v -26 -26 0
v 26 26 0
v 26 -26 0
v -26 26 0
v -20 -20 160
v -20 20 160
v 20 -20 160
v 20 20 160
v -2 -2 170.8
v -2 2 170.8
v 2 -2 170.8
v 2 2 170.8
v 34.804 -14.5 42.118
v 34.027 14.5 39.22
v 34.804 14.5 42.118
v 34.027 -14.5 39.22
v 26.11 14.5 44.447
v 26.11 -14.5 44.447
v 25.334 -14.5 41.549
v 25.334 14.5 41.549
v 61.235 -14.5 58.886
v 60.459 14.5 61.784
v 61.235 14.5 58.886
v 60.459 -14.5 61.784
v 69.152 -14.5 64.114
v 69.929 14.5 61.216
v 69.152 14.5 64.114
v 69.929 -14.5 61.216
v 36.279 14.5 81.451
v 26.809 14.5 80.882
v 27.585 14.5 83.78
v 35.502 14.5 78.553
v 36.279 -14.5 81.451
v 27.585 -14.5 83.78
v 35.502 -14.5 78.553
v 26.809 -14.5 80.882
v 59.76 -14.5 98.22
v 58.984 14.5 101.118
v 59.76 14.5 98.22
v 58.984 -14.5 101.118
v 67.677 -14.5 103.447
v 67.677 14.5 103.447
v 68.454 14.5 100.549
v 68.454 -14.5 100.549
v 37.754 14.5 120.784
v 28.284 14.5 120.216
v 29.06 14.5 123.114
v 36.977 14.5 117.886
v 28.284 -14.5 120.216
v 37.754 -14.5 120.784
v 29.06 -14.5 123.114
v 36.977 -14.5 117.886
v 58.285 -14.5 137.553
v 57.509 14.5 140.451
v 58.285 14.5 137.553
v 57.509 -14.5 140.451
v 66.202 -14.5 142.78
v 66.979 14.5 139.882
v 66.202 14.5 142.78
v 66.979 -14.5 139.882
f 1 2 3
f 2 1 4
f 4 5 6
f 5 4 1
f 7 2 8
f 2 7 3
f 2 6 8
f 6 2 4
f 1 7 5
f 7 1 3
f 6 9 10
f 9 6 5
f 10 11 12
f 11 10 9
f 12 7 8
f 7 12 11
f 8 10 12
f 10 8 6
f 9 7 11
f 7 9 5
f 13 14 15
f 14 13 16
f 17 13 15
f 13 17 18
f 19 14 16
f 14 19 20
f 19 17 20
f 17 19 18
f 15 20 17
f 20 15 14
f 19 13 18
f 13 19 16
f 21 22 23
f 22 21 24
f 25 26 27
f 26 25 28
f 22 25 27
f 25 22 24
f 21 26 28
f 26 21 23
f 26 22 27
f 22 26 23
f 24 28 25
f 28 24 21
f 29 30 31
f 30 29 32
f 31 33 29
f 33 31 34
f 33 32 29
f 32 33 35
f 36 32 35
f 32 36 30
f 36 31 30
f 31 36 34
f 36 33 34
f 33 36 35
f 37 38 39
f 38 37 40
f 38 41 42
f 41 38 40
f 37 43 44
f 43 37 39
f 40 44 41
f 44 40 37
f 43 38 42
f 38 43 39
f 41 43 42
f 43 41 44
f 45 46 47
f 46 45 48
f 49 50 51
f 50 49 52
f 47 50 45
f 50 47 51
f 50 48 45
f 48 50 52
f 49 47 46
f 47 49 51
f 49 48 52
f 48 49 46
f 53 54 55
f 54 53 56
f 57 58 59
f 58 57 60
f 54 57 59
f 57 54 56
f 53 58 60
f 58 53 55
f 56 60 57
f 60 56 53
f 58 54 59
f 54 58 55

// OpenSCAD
// file: tower.scad
// ======================================================
// Dice Tower (tapered shell) + DIAGONAL baffles (wall-to-wall)
// Baffles tilt across X (rotate about Y) and alternate each level
// ======================================================
$fn = 64;

// ---------- Tower geometry ----------
tower_h       = 160;   // body height (not counting cap)
outer_w_bot   = 52;    // outer width at base
outer_w_top   = 40;    // outer width at top
wall          = 3;     // wall thickness
cap_h         = 18;    // little pyramid cap

// Inner chute (constant rectangle, centered)
chute_w       = 32;    // X (give chunky d20s room)
chute_d       = 32;    // Y

// Exit opening (front = +Y)
base_clear_h  = 22;
exit_w        = 34;
exit_h        = 20;

// Funnel at top
funnel_h      = 20;
funnel_over   = 3;

// ---------- Baffles (DIAGONAL across X) ----------
num_baffles       = 6;
baffle_t          = 3.0;   // slightly thicker for robustness
baffle_angle_deg  = 15;     // slope across X (left high → right low, then flip)
baffle_margin     = 10;     // top/bottom margin before first/after last
y_clear_from_wall = 1.5;    // clearance from front/back walls (Y)
 x_overlap         = 1.0;    // small penetration into wall to avoid boolean slivers
baffle_max_width  = 18;     // max baffle width to prevent jamming

// ---------- helpers ----------
module taper(wb, wt, h){ linear_extrude(h, scale=wt/wb) square([wb,wb], center=true); }
function iw_bot() = outer_w_bot - 2*wall;
function iw_top() = outer_w_top - 2*wall;
function inner_w_at_z(z) = iw_bot() + (iw_top() - iw_bot()) * (z / tower_h);

// ---------- outer shell ----------
module outer_shell(){
  union(){
    taper(outer_w_bot, outer_w_top, tower_h);
    // Replace polyhedron cap with a short flat-ish cap to avoid fragile apex
    translate([0,0,tower_h])
      taper(outer_w_top, 4.0, cap_h*0.6); // small flat cap rather than a sharp point
  }
}

// ---------- subtractions ----------
module inner_cavity_taper(){ taper(iw_bot(), iw_top(), tower_h); }
module main_chute(){ linear_extrude(tower_h) square([chute_w, chute_d], center=true); }
module exit_window(){
  translate([0,0,base_clear_h + exit_h/2])
    rotate([90,0,0]) cube([exit_w, wall*2+0.2, exit_h], center=true);
}
module top_funnel(){
  fw_top = chute_w + 2*funnel_over;
  fw_bot = iw_top() - 2;
  fh     = min(funnel_h, tower_h*0.35);
  translate([0,0,tower_h - fh]) taper(fw_bot, fw_top, fh);
}

// ---------- DIAGONAL baffles (tilt across X, alternate) ----------
module baffles_diagonal(){
  usable_h = (tower_h - base_clear_h) - 2*baffle_margin;
  spacing  = usable_h / max(num_baffles,1);

  // size in Y (front/back) – centered with a small gap to both walls
  len_y = chute_d - 2*y_clear_from_wall;

  for(i=[0:num_baffles-1]){
    zc   = base_clear_h + baffle_margin + spacing*(i+0.5);
    iw_z = inner_w_at_z(zc);             // inner width between side walls at this Z

    // PROPER FIX: Baffles must attach to walls to be printable
    // Alternate between left-wall and right-wall attachment
    // Each baffle spans from one wall partway across, leaving flow gap on opposite side
    
    // Safety clamp: ensure flow gap is large enough for common D20s.
    // gap = chute_w - len_x  => enforce gap >= safe_d20 + clearance
    safe_d20   = 22.5;    // typical tip-to-tip diagonal for D20 (mm)
    clearance  = 0.5;     // extra wiggle room (mm)
  // maximum allowed baffle length so the remaining gap fits a D20
  max_len_allowed = max([0, chute_w - (safe_d20 + clearance)]);

  // clamp also by the local inner width at this Z to avoid overhanging into the tapered shell
  // leave a small margin so baffles don't butt exactly at the wall edge
  small_margin = 2.0;
  cap_by_inner = max([0, iw_z - small_margin]);

  // final baffle length: pick the desired coverage, clamp by D20, max width, and inner width;
  // ensure a tiny positive minimum so cube() never gets a zero size
  len_x = max([0.1, min([chute_w * 0.4, max_len_allowed, baffle_max_width, cap_by_inner])]);

    // Add a tiny positive overlap into the wall to avoid boolean slivers (use x_overlap if set)
    wall_penetration = max([0, x_overlap]);

    // compute x_offset so the baffle visibly attaches to the INNER wall at this Z
    inner_half = iw_z / 2;
    left_face  = -inner_half - wall_penetration; // a bit into the inner wall
    right_face =  inner_half + wall_penetration;
    x_offset = (i % 2 == 0) ?
      left_face + len_x/2 :   // Even: attach to LEFT inner wall
      right_face - len_x/2;   // Odd: attach to RIGHT inner wall

    // alternate slope across X: even -> left high/right low, odd -> reverse
    sign = (i % 2 == 0) ? 1 : -1;
    tilt = sign * baffle_angle_deg;

    // Single diagonal baffle - attached to alternating walls
    translate([x_offset, 0, zc])
      rotate([0, tilt, 0])
        cube([len_x, len_y, baffle_t], center=true);
  }
}

// ---------- assembly ----------
difference(){
  union(){
    outer_shell();
    // include internal shelves so they remain after subtraction
    baffles_diagonal();
  }
  inner_cavity_taper();
  main_chute();    // ensures a straight chute inside the tapered shell
  exit_window();
  top_funnel();
}

/* Tuning:
- Want a stronger slope?   baffle_angle_deg = 18–20
- Easier bridging?         baffle_t = 3.0
- More room for big dice?  chute_w = chute_d = 34
- Shelves touching side walls more obviously? increase x_overlap to 1.0
- If you prefer the “front/back hug” style instead, tell me and I’ll swap the
  tilt axis (rotate about X) and add the exact Y wall gap computation.
*/

// ---------- test slice helper ----------
// Renders a short vertical slice of the tower (0..slice_h mm) for test-printing
module test_slice(slice_h = 50){
  // render the final assembled tower, then clip with an intersection cube
  intersection(){
    // full model
    difference(){
      union(){ outer_shell(); baffles_diagonal(); }
      inner_cavity_taper();
      main_chute();
      exit_window();
      top_funnel();
    }
    // clipping box
    translate([-100,-100,0])
      cube([200,200,slice_h], center=false);
  }
}
// main file
// Debug scene to visualize baffles and cavity
// Includes the main design and draws baffles in place + shifted aside for inspection
include <tower.scad>

// show shell (semi-transparent)
color([0.9,0.9,0.6,0.2]) outer_shell();
// show inner cavity (semi-transparent blue)
color([0.2,0.6,0.9,0.2]) inner_cavity_taper();

// show baffles in-place (red)
color([1,0.2,0.2,0.9]) baffles_diagonal();

// show baffles shifted aside for clarity (green)
translate([outer_w_top*1.2,0,0]) color([0.2,0.9,0.3,0.9]) baffles_diagonal();

// draw the straight chute too for reference
translate([0,0,0]) color([0.6,0.6,0.6,0.4]) main_chute();
